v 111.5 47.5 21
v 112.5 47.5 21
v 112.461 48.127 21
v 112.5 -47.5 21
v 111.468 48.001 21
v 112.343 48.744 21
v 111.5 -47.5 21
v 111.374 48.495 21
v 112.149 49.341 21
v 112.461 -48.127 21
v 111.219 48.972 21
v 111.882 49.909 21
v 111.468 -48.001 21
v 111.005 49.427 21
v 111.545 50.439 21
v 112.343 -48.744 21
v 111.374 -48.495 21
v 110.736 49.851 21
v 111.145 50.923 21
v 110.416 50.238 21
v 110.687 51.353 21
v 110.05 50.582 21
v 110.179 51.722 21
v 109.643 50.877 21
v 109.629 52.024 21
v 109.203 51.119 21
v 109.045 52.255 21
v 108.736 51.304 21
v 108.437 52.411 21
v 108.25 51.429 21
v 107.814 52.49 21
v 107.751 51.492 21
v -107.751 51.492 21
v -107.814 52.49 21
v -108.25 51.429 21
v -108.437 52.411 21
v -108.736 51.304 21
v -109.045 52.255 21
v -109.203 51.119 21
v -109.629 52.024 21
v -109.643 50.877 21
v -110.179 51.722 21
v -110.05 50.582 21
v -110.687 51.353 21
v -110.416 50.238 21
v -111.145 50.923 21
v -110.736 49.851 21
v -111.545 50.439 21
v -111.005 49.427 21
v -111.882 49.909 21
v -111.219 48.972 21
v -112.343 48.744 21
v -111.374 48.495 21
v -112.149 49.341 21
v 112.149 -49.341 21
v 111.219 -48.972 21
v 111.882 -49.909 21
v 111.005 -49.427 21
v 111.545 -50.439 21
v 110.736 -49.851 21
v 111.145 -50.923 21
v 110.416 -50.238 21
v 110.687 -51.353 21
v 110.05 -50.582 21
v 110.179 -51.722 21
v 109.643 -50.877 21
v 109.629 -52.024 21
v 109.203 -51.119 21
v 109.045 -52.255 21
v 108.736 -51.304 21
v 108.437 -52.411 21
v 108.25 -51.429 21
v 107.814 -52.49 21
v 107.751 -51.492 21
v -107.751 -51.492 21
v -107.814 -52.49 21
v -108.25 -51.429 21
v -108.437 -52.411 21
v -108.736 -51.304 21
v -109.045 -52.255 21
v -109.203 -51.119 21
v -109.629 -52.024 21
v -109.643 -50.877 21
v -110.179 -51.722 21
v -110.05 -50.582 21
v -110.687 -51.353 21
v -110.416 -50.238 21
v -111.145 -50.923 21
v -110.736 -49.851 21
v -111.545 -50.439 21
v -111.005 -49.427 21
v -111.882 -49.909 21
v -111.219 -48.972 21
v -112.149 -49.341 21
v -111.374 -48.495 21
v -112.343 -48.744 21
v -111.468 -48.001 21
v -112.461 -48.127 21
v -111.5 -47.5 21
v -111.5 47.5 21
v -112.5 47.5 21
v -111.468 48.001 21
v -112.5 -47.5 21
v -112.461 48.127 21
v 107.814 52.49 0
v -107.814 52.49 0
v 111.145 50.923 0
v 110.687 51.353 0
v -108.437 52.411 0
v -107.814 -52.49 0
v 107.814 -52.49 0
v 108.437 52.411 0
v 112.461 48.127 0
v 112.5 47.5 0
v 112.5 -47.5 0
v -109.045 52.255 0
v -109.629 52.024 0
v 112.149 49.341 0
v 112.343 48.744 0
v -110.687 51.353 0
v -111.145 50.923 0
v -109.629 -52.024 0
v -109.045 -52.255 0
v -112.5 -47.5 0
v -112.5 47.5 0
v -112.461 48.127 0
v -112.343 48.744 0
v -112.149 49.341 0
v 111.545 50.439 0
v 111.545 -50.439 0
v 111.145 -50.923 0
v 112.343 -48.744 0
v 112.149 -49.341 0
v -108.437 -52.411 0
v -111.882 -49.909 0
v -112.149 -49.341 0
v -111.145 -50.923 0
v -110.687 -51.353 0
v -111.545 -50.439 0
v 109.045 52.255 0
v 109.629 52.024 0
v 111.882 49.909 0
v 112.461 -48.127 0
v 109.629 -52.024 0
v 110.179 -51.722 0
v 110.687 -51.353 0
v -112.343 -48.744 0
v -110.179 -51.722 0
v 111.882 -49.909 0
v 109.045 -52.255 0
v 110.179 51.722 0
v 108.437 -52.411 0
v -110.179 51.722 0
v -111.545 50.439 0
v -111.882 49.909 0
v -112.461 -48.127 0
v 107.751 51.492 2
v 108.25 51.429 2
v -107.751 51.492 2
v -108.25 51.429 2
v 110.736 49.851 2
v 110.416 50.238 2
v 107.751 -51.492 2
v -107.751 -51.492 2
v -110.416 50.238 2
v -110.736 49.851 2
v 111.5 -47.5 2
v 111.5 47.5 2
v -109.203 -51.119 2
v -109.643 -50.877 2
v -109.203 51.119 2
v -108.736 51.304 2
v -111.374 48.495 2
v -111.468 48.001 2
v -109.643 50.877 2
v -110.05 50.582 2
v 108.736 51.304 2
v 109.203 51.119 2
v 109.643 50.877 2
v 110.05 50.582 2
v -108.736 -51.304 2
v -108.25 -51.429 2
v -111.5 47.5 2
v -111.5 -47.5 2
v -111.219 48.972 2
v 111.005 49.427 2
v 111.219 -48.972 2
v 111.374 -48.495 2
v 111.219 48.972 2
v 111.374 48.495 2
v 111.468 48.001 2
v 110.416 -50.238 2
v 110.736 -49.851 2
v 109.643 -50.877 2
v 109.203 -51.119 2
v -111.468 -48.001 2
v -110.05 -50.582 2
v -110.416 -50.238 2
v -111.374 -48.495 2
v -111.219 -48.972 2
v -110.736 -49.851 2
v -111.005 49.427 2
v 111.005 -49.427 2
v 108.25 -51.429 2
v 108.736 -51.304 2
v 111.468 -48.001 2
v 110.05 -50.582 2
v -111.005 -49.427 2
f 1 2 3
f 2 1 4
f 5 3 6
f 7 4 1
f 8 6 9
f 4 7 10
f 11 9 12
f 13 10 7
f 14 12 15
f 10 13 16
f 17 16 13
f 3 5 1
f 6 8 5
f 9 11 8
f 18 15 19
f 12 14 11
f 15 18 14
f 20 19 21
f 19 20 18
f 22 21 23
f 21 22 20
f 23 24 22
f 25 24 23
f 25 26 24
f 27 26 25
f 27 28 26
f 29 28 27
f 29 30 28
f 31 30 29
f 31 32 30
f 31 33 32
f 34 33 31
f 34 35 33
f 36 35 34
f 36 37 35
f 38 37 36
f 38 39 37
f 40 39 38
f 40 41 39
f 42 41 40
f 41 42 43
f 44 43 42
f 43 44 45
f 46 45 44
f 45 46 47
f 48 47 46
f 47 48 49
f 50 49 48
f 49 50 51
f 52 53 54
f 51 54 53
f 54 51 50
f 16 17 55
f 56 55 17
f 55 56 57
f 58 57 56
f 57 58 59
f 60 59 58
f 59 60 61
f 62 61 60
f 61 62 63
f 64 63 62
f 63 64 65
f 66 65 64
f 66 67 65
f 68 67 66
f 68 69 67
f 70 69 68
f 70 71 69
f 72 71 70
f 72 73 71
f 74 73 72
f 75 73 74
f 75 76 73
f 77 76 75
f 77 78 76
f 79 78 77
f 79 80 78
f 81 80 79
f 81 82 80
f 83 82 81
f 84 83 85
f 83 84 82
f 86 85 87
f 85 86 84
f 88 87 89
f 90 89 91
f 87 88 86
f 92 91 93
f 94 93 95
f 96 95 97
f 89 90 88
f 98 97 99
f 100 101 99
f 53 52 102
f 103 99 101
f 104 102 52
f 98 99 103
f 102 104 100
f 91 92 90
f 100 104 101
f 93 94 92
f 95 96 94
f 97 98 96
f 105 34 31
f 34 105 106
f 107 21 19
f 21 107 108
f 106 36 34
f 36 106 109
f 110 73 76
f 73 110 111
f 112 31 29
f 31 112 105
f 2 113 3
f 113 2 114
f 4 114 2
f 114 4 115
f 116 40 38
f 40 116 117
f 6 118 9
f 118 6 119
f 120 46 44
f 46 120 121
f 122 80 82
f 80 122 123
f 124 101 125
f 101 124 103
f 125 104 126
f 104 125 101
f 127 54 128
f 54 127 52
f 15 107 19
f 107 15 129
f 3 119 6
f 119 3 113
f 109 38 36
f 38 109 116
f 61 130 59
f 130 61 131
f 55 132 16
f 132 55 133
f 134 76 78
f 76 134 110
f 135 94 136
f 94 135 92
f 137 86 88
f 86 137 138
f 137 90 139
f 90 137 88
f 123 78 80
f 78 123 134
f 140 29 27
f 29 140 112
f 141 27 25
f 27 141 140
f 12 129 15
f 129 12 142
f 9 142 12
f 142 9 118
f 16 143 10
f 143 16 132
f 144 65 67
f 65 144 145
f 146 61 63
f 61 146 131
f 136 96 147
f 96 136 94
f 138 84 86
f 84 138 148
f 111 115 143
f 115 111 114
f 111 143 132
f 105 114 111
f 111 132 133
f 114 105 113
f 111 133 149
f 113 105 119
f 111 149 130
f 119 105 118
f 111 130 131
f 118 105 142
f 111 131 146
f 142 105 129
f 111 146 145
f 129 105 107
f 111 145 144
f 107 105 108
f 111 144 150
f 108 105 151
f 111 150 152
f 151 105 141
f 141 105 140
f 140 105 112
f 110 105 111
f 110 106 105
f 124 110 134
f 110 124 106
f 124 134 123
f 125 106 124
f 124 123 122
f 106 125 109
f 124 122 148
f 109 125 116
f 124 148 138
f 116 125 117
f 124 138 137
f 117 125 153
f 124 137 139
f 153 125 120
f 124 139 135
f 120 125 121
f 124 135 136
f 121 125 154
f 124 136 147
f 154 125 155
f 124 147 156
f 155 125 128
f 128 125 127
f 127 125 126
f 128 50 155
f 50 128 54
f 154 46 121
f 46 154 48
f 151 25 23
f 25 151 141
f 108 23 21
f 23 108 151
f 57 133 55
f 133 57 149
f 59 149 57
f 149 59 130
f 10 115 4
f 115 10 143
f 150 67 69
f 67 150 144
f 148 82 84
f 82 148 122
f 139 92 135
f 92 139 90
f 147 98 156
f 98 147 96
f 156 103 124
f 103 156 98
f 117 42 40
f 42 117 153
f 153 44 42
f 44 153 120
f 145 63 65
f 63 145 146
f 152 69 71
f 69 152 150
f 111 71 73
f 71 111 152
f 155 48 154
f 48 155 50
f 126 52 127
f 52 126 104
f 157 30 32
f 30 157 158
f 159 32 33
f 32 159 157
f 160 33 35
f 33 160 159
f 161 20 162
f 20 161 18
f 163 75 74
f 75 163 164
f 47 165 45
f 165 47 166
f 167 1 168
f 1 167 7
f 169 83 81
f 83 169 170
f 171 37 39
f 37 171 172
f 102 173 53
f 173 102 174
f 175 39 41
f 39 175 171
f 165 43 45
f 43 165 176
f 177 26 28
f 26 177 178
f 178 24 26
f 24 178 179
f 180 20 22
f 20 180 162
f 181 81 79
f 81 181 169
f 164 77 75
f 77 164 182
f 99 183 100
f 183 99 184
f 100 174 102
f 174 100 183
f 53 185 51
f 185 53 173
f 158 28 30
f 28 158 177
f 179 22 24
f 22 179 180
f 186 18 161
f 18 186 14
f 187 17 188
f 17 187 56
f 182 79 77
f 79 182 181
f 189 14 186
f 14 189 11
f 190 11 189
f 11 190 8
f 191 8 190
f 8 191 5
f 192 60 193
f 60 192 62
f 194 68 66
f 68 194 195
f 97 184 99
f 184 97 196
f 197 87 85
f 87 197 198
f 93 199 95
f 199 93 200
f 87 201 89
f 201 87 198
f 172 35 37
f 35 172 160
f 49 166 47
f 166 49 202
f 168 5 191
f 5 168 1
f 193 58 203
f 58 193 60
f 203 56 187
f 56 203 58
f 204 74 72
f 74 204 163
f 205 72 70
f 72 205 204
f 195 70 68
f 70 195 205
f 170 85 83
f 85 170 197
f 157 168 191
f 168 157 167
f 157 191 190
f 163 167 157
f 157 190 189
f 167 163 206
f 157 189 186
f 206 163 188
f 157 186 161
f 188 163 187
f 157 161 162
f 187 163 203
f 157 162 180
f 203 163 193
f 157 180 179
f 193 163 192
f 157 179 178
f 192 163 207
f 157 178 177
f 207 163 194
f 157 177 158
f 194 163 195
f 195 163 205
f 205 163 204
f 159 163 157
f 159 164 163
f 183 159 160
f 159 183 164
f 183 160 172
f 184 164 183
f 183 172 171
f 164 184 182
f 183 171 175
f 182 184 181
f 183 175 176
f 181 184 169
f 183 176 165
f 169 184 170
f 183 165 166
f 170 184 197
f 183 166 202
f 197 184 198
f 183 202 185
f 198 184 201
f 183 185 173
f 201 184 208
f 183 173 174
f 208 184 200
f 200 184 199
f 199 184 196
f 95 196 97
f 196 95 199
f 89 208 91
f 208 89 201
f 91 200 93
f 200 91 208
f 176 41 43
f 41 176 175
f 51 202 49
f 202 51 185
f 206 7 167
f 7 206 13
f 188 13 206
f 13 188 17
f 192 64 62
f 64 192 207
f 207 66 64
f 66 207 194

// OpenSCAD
$fn = 50;


difference() {
	union() {
		hull() {
			translate(v = [-107.5000000000, 47.5000000000, 0]) {
				cylinder(h = 21, r = 5);
			}
			translate(v = [107.5000000000, 47.5000000000, 0]) {
				cylinder(h = 21, r = 5);
			}
			translate(v = [-107.5000000000, -47.5000000000, 0]) {
				cylinder(h = 21, r = 5);
			}
			translate(v = [107.5000000000, -47.5000000000, 0]) {
				cylinder(h = 21, r = 5);
			}
		}
	}
	union() {
		translate(v = [0, 0, 2]) {
			hull() {
				translate(v = [-107.5000000000, 47.5000000000, 0]) {
					cylinder(h = 19, r = 4);
				}
				translate(v = [107.5000000000, 47.5000000000, 0]) {
					cylinder(h = 19, r = 4);
				}
				translate(v = [-107.5000000000, -47.5000000000, 0]) {
					cylinder(h = 19, r = 4);
				}
				translate(v = [107.5000000000, -47.5000000000, 0]) {
					cylinder(h = 19, r = 4);
				}
			}
		}
	}
}
